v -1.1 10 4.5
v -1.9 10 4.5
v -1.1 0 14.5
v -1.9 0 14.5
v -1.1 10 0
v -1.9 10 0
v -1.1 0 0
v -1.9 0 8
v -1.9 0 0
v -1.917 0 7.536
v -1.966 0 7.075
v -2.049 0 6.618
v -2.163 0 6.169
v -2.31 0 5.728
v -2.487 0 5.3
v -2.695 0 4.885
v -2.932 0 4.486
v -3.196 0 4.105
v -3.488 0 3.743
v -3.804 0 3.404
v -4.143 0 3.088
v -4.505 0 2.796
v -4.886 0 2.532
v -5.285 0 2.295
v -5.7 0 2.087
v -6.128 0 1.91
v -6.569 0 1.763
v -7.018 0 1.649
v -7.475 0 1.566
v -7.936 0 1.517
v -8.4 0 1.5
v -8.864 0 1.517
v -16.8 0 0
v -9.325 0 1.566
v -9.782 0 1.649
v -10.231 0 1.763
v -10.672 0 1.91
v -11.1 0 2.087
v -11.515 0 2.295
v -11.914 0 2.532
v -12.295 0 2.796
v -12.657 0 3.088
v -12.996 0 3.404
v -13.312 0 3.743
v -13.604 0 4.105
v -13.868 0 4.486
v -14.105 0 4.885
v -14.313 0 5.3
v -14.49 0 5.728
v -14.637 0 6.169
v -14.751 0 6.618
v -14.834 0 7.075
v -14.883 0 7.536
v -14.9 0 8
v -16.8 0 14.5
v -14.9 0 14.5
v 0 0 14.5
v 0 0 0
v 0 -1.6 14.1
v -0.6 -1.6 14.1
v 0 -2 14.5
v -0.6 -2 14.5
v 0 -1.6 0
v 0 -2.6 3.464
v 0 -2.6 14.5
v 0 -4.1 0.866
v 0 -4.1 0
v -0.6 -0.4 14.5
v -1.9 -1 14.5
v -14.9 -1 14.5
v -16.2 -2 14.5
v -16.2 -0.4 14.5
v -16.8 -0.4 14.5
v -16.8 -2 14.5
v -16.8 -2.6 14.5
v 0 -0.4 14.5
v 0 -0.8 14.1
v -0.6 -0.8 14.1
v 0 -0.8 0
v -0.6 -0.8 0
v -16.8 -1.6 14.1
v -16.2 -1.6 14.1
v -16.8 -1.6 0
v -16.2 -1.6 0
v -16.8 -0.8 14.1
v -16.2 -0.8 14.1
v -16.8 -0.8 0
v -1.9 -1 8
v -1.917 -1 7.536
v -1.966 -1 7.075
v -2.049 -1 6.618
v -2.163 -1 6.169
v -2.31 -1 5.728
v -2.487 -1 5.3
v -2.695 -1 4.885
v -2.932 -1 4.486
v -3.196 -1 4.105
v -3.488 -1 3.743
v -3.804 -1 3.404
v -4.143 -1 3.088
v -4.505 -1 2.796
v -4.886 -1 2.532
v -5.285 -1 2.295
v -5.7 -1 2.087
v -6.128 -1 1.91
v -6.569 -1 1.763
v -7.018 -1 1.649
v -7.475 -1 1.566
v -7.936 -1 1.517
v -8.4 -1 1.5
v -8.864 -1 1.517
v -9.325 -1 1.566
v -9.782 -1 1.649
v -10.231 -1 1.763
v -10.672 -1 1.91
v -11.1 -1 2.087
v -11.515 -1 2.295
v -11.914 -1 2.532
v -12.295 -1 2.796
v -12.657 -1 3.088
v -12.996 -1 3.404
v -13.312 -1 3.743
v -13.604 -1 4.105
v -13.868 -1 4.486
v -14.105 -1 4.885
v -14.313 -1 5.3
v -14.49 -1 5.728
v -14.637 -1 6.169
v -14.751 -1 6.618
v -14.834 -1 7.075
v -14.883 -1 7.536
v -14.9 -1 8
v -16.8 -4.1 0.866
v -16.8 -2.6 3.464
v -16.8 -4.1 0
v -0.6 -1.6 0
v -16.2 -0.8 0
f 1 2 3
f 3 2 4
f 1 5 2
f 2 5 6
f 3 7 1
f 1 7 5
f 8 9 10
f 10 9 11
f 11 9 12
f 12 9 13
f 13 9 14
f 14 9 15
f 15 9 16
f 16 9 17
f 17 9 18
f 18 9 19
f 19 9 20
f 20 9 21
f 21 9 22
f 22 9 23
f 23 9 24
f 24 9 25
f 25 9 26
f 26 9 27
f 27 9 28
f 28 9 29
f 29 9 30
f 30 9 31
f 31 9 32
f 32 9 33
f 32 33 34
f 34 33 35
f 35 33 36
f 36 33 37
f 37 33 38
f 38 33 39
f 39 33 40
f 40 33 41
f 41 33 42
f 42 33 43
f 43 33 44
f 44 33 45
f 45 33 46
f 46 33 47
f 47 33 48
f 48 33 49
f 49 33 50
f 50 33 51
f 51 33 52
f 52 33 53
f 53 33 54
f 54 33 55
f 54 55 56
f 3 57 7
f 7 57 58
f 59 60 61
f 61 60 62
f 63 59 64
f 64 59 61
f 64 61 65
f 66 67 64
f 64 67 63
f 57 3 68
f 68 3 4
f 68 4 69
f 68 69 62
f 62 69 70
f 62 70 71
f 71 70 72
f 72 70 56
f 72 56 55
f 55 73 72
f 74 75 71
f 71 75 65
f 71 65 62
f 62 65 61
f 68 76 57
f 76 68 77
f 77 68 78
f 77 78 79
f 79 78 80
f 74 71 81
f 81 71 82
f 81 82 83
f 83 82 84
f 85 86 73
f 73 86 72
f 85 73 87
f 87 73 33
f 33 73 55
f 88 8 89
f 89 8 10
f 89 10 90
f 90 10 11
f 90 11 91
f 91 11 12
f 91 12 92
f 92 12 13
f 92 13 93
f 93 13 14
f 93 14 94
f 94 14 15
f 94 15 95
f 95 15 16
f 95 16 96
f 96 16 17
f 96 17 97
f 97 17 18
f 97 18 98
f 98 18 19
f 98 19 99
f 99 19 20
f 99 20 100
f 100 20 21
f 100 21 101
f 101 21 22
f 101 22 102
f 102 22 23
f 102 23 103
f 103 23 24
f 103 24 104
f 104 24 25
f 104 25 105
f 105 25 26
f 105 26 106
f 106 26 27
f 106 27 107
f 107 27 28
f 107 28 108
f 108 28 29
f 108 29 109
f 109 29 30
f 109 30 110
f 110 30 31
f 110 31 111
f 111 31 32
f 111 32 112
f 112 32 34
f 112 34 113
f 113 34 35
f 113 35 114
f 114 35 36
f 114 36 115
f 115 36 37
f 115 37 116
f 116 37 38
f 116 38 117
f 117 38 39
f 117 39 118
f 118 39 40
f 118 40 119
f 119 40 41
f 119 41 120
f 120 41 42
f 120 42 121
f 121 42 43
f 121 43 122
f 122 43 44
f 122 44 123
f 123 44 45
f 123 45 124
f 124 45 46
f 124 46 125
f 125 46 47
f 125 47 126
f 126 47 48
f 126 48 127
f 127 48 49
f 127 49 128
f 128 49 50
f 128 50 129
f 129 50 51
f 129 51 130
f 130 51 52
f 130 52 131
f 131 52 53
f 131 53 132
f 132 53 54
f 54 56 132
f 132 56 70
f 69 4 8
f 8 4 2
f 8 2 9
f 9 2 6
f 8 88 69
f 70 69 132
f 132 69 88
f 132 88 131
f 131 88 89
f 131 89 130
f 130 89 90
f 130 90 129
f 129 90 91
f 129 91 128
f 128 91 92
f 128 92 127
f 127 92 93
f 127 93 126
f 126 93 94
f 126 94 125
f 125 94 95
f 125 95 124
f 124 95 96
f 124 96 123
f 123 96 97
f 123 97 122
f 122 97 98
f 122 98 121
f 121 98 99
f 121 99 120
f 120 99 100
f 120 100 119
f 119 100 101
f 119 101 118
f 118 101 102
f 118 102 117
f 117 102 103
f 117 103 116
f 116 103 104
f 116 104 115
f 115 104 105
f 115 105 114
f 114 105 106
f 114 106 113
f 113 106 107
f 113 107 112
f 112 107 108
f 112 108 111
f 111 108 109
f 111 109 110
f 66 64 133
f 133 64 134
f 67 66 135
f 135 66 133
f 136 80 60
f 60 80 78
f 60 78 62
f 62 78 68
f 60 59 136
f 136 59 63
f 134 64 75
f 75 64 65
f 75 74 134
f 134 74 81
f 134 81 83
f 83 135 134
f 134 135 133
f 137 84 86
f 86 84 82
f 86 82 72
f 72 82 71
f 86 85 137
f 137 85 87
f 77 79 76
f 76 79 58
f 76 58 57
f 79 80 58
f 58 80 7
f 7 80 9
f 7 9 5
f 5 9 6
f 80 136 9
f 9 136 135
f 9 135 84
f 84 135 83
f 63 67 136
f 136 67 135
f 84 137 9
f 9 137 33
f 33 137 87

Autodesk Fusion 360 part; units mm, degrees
sketch "Sketch1" plane through (0, 0, 0) normal (0, 0, 1) x (1, 0, 0)
  line L0 (0, 0) -> (-0.9251, 0)
  line L1 (-0.6, -0.8) -> (0, -0.8)
  line L2 (0, -0.8) -> (0, 0)
  line L3 (-0.6, -0.8) -> (-0.6, -1.6)
  line L4 (-0.6, -1.6) -> (0, -1.6)
  line L5 (0, -1.6) -> (0, -2.6)
  line L6 (-8.4, -2.6) -> (-8.4, -0.0952)
  line L7 (-16.8, -1.6) -> (-16.8, -2.6)
  line L8 (-16.2, -1.6) -> (-16.8, -1.6)
  line L9 (-16.2, -0.8) -> (-16.2, -1.6)
  line L10 (-16.2, -0.8) -> (-16.8, -0.8)
  line L11 (-16.8, -0.8) -> (-16.8, 0)
  line L12 (-16.8, -2.6) -> (-8.4, -2.6)
  line L13 (-16.8, 0) -> (0, 0)
  line L14 (0, -2.6) -> (-16.8, -2.6)
  dimension "d1" = 1
  dimension "d2" = 0.8
  dimension "d3" = 0.8
  dimension "d4" = 0.6
  dimension "d6" = 16.8
extrude "Extrude1" add sketch "Sketch1" along normal blind 14.5
sketch "Sketch2" plane through (0, 0, 0) normal (1, 0, 0) x (0, 1, 0)
  line L0 (-2.6, 0) -> (-1.6, 0)
  line L1 (-1.6, 0) -> (-1.6, 14.5)
  line L2 (-1.6, 14.5) -> (-2.6, 14.5)
  line L3 (-2.6, 14.5) -> (-2.6, 0)
  line L4 (-2.6, 0) -> (-2.6, 14.5)
  line L5 (-1.6, 0) -> (-2.6, 0)
  line L6 (-2.6, 0) -> (-4.6, 0)
  line L7 (-4.6, 0) -> (-2.6, 3.4641)
  line L8 (-4.1, 0) -> (-4.1, 0.866)
  point P0 (-2.6, 0)
  dimension "d9" = 60
  dimension "d10" = 2
  dimension "d17" = 1.5
extrude "Extrude2" add sketch "Sketch2" against normal blind 16.8 contours L3 L4 L6 L7 L8
sketch "Sketch3" plane through (0, 0, 0) normal (0, 1, 0) x (-1, 0, 0)
  line L0 (0, 0) -> (16.8, 0)
  line L1 (16.8, 0) -> (16.8, 14.5)
  line L2 (16.8, 14.5) -> (0, 14.5)
  line L3 (0, 14.5) -> (0, 0)
  line L4 (0, 14.5) -> (16.8, 14.5)
  line L5 (8.4, 14.5) -> (8.4, 8) construction
  line L6 (1.9, 14.5) -> (1.9, 8)
  line L7 (14.9, 14.5) -> (14.9, 8)
  arc A0 (1.9, 8) -> (14.9, 8) centre (8.4, 8) ccw
  dimension "d13" = 6.5
  dimension "d14" = 13
extrude "Extrude3" cut sketch "Sketch3" against normal blind 1 contours L2 L4 L6 L7 A0
chamfer "Chamfer1" distance 0.4 angle 45 4 edges at (-16.5, -0.8, 14.5) (-16.5, -1.6, 14.5) (-0.3, -0.8, 14.5) (-0.3, -1.6, 14.5)
sketch "Sketch4" plane through (0, 0, 0) normal (0, 1, 0) x (-1, 0, 0)
  line L0 (1.9, 8) -> (1.9, 14.5)
  line L1 (1.9, 14.5) -> (0, 14.5)
  line L2 (0, 14.5) -> (0, 0)
  line L3 (0, 0) -> (16.8, 0)
  line L4 (16.8, 0) -> (16.8, 14.5)
  line L5 (16.8, 14.5) -> (14.9, 14.5)
  line L6 (14.9, 14.5) -> (14.9, 8)
  arc A0 (1.9, 8) -> (14.9, 8) centre (8.4, 8) ccw
  line L7 (1.9, 14.5) -> (1.9, 0)
  line L8 (1.1, 0) -> (1.1, 14.5)
  dimension "d19" = 0.8
extrude "Extrude4" add sketch "Sketch4" along normal blind 10 contours L0 L1 L3 L7 L8
chamfer "Chamfer2" distance 10 angle 45 1 edges at (-1.5, 10, 14.5)
